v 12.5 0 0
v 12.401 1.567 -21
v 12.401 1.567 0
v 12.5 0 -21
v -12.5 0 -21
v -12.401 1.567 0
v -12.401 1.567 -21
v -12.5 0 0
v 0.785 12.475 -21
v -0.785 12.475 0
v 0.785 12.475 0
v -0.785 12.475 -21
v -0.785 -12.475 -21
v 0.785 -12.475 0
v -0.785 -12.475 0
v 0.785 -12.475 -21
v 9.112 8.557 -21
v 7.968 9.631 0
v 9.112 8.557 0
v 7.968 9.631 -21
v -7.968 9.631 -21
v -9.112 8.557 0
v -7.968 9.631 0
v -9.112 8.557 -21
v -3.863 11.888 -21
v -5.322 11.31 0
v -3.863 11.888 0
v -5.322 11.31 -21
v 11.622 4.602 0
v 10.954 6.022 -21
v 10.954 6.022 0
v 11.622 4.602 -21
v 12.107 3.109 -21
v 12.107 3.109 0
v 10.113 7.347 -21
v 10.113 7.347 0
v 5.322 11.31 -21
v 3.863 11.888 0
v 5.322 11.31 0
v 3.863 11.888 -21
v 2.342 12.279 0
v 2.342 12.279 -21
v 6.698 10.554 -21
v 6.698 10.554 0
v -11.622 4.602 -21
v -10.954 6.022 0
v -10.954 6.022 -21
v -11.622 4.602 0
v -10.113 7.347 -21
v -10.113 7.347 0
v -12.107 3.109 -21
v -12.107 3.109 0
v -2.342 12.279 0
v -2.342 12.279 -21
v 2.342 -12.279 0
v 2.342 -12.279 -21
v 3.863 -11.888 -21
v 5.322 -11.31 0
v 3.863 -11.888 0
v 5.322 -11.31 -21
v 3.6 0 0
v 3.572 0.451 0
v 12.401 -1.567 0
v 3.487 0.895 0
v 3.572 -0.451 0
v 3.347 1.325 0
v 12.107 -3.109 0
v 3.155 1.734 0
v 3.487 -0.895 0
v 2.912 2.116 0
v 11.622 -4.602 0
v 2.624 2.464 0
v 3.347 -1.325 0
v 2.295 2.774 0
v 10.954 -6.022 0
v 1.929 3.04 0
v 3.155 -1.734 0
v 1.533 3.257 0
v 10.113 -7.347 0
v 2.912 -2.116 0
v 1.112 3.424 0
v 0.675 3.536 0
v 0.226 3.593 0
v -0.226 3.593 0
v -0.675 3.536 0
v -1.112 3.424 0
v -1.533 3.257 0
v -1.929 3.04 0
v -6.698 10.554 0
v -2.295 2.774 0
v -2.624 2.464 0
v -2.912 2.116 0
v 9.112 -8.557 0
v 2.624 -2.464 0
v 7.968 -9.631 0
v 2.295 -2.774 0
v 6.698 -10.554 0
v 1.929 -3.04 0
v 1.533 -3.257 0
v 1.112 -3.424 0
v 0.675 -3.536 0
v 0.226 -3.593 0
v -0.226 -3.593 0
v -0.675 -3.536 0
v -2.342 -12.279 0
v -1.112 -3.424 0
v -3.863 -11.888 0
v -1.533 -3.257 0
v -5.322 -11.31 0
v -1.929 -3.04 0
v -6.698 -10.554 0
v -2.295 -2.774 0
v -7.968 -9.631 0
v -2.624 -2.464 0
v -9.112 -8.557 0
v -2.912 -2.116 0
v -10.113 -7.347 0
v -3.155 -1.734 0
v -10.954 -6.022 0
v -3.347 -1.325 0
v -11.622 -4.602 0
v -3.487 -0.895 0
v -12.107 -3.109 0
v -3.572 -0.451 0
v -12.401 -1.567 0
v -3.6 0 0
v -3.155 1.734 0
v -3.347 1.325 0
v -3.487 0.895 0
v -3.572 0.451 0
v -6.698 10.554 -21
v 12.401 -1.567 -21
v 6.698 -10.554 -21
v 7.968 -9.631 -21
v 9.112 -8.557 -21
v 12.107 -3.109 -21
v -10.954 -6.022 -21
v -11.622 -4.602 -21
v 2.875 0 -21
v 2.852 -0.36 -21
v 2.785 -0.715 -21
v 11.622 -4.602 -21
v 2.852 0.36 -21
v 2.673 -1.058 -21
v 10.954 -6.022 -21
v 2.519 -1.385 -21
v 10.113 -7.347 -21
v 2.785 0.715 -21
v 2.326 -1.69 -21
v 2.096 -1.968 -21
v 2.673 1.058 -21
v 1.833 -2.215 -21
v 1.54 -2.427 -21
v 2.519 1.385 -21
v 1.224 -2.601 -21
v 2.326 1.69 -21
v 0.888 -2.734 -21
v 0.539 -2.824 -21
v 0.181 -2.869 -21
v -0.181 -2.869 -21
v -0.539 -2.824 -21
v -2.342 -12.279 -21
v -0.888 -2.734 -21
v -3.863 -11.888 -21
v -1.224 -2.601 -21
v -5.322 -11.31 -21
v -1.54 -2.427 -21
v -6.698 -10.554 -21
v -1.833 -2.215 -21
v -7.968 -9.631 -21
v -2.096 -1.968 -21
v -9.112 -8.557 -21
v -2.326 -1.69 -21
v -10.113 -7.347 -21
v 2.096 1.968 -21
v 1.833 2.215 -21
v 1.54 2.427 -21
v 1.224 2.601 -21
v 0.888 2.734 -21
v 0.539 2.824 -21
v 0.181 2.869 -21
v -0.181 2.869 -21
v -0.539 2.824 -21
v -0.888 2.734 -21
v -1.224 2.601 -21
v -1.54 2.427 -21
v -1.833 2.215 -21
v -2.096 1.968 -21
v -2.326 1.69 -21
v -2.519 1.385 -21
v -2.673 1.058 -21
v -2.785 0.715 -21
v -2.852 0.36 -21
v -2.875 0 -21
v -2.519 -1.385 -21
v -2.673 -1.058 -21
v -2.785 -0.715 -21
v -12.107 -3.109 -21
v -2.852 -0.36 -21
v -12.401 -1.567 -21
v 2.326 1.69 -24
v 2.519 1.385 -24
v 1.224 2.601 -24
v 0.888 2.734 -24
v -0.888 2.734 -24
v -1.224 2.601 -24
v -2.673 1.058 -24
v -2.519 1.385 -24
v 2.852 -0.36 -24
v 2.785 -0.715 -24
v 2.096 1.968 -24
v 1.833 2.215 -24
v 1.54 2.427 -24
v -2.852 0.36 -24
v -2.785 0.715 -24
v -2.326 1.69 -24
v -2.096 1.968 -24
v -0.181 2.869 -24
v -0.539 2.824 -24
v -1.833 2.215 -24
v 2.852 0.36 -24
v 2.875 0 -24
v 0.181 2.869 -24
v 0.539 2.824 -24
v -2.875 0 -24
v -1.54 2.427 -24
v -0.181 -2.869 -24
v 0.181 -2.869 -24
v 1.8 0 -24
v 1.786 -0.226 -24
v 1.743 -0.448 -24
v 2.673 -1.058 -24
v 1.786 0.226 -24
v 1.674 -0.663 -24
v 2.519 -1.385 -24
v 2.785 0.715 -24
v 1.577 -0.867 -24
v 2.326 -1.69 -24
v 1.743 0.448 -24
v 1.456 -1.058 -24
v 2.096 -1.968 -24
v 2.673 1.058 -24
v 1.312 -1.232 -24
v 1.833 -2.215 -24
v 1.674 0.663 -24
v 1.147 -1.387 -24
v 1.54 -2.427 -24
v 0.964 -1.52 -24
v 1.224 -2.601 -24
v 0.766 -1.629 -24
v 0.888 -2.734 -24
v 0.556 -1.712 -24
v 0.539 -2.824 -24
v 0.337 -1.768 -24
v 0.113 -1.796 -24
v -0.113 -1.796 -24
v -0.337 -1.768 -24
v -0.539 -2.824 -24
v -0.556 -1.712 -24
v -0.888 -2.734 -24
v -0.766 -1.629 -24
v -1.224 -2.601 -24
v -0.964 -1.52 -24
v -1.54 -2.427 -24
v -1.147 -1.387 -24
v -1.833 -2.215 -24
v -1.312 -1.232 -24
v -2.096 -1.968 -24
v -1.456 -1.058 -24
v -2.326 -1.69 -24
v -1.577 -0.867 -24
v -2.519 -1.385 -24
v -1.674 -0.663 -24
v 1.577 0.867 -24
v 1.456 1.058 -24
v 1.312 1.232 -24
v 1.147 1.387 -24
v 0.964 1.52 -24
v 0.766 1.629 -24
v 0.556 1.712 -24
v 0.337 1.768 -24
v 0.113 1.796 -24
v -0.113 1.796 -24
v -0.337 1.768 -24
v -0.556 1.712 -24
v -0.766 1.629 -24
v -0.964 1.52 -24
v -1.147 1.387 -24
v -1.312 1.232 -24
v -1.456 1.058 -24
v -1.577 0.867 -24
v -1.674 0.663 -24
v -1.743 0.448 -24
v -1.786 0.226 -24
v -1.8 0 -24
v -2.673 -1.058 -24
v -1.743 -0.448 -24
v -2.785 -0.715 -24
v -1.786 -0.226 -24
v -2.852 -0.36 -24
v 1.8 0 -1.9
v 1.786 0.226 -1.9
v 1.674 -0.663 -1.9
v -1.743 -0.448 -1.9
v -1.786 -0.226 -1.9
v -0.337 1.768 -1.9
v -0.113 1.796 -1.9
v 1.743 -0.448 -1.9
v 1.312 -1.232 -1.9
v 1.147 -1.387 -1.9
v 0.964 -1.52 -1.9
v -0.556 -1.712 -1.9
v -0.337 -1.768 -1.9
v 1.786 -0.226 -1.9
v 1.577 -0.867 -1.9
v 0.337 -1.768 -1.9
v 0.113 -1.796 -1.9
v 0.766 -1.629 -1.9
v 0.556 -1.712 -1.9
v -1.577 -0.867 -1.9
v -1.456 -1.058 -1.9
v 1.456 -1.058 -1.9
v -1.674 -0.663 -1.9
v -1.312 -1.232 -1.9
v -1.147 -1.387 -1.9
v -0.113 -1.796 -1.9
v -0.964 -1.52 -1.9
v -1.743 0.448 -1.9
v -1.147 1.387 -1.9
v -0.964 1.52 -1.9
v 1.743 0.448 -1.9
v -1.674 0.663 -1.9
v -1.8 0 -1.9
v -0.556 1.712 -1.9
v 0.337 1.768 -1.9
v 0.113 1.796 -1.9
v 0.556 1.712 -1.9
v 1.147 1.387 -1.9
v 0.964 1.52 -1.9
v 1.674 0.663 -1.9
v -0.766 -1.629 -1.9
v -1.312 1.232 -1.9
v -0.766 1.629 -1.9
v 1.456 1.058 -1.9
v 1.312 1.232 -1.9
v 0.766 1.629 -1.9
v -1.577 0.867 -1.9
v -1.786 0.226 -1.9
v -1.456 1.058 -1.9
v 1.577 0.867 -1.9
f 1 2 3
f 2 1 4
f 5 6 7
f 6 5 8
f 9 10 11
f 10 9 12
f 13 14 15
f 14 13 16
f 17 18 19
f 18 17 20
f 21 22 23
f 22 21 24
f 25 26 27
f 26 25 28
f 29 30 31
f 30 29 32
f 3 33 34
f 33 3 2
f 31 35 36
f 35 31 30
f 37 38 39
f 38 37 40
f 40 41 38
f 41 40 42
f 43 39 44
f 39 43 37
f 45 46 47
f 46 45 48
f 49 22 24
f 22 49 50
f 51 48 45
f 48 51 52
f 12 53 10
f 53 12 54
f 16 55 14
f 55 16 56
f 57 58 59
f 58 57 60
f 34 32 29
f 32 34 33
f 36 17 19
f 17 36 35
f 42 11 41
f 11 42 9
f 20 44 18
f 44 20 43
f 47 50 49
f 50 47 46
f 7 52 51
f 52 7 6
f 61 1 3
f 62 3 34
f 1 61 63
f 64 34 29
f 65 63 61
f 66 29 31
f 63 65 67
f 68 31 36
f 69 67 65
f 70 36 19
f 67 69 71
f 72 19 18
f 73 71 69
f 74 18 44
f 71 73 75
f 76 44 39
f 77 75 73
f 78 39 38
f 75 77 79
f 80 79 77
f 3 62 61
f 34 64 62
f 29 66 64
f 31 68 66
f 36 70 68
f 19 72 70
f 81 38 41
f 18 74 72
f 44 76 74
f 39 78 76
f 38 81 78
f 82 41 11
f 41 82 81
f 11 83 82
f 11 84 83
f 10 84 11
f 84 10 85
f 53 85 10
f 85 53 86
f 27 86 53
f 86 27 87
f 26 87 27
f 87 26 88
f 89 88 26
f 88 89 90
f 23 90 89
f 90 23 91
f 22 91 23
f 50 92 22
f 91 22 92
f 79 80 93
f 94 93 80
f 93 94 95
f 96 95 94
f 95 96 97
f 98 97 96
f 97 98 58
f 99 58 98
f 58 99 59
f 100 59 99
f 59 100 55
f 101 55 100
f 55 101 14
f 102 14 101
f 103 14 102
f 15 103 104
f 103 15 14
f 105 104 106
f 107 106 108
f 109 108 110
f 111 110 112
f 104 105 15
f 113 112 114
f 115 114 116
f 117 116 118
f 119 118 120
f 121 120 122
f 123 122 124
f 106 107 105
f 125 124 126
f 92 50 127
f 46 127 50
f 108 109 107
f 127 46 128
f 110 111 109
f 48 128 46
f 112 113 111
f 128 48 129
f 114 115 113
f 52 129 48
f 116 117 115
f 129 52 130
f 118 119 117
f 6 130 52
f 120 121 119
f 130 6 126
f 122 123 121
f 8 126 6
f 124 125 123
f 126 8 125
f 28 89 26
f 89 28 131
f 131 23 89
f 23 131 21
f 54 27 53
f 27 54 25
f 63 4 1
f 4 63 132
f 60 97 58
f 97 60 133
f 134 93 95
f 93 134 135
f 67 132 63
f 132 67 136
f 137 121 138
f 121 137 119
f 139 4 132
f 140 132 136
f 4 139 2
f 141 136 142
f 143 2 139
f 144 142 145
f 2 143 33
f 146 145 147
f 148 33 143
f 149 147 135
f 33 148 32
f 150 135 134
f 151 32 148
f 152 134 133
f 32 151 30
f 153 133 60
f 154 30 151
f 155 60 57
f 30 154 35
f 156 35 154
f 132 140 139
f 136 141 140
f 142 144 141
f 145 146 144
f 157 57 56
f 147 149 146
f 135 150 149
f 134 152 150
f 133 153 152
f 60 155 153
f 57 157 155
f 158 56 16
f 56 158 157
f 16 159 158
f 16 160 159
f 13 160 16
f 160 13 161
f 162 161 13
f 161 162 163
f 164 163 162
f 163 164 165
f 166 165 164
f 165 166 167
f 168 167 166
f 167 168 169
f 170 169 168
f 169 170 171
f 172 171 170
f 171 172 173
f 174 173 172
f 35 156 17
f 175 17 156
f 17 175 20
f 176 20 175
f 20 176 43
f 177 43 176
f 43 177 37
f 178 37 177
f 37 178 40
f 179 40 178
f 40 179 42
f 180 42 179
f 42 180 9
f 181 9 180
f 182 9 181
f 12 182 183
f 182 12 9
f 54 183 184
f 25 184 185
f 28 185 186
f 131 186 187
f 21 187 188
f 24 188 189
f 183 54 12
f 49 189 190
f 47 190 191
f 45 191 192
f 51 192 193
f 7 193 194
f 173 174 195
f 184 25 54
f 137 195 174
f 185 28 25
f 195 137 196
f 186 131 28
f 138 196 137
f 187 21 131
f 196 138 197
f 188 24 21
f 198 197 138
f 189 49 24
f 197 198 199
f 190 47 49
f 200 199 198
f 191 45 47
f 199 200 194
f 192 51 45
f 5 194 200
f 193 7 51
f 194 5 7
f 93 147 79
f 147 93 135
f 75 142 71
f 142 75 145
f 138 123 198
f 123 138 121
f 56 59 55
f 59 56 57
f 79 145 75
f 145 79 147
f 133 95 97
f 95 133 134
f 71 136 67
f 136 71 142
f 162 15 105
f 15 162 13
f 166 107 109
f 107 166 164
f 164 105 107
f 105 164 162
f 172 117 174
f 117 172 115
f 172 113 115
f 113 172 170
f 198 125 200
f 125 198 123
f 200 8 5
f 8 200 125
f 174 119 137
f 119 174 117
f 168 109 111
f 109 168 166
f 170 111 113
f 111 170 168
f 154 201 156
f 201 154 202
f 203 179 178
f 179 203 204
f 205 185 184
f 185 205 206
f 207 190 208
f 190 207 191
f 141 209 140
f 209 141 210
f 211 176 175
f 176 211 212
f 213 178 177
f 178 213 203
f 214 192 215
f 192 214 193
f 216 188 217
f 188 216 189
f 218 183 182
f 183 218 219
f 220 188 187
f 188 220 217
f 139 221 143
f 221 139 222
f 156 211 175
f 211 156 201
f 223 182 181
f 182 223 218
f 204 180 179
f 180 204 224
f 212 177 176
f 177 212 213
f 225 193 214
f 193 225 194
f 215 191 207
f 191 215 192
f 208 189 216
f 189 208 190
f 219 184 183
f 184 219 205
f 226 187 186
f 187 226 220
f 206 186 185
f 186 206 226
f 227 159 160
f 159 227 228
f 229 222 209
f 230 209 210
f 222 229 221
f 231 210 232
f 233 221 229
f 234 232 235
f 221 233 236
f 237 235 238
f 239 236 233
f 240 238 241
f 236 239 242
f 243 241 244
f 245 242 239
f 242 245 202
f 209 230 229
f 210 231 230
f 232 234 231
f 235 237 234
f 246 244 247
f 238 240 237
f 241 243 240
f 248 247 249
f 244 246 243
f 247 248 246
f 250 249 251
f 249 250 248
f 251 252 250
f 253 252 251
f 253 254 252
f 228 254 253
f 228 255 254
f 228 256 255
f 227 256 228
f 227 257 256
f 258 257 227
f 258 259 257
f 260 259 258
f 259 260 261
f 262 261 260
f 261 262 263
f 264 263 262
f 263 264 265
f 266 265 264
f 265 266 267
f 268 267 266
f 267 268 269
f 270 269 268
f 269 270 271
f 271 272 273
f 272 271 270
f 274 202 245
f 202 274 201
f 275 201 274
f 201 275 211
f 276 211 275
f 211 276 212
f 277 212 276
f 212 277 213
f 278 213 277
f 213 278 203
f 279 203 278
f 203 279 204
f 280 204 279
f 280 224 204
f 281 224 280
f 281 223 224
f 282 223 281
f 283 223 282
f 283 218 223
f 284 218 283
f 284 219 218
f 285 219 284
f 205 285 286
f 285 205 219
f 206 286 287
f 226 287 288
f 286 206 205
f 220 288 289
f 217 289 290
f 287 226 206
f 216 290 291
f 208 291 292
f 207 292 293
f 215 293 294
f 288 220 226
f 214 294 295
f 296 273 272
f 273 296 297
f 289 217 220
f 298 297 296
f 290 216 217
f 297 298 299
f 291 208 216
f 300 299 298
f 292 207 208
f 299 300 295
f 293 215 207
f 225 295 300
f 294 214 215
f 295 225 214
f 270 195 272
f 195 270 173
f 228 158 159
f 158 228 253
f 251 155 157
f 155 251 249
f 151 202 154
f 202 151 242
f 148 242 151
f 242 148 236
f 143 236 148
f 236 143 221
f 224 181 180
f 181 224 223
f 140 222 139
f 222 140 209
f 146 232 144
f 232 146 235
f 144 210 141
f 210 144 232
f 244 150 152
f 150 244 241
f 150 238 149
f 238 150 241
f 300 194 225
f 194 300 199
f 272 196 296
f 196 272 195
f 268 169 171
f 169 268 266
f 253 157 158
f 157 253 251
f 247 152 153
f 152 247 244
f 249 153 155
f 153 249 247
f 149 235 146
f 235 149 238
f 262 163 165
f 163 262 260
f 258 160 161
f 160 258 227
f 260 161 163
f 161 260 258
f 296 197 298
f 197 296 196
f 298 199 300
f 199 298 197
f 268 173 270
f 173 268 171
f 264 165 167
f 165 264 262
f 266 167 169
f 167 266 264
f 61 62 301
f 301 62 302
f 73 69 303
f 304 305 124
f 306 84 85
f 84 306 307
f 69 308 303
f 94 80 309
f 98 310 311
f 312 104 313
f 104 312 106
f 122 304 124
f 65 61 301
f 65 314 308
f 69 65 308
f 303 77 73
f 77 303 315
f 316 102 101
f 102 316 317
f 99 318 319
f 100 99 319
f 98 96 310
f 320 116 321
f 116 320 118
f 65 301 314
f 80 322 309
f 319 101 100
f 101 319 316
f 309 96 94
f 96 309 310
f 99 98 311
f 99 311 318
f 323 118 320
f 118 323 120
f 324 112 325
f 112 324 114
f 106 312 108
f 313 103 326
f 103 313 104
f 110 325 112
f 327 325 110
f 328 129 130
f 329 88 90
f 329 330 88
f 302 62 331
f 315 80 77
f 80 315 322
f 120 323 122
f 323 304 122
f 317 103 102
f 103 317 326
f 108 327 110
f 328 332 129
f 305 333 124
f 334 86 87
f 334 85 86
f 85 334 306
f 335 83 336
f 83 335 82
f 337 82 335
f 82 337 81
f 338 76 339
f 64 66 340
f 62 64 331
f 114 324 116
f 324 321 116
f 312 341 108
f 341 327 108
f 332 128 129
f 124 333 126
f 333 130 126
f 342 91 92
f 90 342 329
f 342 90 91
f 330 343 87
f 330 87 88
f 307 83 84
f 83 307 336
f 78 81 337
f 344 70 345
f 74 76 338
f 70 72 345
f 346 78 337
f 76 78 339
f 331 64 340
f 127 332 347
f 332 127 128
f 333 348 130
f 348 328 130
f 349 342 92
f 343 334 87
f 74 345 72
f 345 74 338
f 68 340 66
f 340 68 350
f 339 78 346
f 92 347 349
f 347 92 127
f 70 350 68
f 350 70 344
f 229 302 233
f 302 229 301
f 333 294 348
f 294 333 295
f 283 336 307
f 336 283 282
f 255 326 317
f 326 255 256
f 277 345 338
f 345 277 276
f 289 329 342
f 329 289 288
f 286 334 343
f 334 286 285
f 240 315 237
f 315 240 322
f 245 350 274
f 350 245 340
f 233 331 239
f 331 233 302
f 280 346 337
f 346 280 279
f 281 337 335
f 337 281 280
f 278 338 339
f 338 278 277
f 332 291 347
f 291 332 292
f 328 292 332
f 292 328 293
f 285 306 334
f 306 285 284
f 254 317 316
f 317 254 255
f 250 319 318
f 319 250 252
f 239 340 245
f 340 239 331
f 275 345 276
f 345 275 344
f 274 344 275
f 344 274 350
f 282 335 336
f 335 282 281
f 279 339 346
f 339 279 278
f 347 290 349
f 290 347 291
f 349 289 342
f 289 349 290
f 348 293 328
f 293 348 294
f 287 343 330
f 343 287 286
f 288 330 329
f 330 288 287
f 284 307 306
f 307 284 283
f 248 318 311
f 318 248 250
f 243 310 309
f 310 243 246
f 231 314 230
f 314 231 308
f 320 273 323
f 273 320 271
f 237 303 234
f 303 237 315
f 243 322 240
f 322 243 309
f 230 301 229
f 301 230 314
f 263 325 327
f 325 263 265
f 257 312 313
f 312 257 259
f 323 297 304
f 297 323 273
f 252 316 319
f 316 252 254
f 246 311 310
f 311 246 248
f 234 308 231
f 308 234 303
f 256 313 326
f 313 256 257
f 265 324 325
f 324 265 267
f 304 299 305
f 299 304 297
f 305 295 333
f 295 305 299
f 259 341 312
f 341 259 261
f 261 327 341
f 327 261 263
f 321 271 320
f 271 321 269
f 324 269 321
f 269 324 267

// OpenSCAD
$fn = 50;

difference() {
	union() {
		translate(v = [0, 0, -21.0]) {
			cylinder(h = 21, r = 12.5);
		}
		#translate(v = [0, 0, -24.0]) {
			cylinder(h = 24, r = 2.875);
		}
	}
	union() {
		translate(v = [0, 0, 0]) {
			rotate(a = [0, 0, 0]) {
				difference() {
					union() {
						translate(v = [0, 0, -24.0]) {
							cylinder(h = 24, r = 1.5);
						}
						translate(v = [0, 0, -1.9]) {
							cylinder(h = 1.9, r1 = 1.8, r2 = 3.6);
						}
						translate(v = [0, 0, -24.0]) {
							cylinder(h = 24, r = 1.8);
						}
						translate(v = [0, 0, -24.0]) {
							cylinder(h = 24, r = 1.5);
						}
					}
					union();
				}
			}
		}
	}
}
